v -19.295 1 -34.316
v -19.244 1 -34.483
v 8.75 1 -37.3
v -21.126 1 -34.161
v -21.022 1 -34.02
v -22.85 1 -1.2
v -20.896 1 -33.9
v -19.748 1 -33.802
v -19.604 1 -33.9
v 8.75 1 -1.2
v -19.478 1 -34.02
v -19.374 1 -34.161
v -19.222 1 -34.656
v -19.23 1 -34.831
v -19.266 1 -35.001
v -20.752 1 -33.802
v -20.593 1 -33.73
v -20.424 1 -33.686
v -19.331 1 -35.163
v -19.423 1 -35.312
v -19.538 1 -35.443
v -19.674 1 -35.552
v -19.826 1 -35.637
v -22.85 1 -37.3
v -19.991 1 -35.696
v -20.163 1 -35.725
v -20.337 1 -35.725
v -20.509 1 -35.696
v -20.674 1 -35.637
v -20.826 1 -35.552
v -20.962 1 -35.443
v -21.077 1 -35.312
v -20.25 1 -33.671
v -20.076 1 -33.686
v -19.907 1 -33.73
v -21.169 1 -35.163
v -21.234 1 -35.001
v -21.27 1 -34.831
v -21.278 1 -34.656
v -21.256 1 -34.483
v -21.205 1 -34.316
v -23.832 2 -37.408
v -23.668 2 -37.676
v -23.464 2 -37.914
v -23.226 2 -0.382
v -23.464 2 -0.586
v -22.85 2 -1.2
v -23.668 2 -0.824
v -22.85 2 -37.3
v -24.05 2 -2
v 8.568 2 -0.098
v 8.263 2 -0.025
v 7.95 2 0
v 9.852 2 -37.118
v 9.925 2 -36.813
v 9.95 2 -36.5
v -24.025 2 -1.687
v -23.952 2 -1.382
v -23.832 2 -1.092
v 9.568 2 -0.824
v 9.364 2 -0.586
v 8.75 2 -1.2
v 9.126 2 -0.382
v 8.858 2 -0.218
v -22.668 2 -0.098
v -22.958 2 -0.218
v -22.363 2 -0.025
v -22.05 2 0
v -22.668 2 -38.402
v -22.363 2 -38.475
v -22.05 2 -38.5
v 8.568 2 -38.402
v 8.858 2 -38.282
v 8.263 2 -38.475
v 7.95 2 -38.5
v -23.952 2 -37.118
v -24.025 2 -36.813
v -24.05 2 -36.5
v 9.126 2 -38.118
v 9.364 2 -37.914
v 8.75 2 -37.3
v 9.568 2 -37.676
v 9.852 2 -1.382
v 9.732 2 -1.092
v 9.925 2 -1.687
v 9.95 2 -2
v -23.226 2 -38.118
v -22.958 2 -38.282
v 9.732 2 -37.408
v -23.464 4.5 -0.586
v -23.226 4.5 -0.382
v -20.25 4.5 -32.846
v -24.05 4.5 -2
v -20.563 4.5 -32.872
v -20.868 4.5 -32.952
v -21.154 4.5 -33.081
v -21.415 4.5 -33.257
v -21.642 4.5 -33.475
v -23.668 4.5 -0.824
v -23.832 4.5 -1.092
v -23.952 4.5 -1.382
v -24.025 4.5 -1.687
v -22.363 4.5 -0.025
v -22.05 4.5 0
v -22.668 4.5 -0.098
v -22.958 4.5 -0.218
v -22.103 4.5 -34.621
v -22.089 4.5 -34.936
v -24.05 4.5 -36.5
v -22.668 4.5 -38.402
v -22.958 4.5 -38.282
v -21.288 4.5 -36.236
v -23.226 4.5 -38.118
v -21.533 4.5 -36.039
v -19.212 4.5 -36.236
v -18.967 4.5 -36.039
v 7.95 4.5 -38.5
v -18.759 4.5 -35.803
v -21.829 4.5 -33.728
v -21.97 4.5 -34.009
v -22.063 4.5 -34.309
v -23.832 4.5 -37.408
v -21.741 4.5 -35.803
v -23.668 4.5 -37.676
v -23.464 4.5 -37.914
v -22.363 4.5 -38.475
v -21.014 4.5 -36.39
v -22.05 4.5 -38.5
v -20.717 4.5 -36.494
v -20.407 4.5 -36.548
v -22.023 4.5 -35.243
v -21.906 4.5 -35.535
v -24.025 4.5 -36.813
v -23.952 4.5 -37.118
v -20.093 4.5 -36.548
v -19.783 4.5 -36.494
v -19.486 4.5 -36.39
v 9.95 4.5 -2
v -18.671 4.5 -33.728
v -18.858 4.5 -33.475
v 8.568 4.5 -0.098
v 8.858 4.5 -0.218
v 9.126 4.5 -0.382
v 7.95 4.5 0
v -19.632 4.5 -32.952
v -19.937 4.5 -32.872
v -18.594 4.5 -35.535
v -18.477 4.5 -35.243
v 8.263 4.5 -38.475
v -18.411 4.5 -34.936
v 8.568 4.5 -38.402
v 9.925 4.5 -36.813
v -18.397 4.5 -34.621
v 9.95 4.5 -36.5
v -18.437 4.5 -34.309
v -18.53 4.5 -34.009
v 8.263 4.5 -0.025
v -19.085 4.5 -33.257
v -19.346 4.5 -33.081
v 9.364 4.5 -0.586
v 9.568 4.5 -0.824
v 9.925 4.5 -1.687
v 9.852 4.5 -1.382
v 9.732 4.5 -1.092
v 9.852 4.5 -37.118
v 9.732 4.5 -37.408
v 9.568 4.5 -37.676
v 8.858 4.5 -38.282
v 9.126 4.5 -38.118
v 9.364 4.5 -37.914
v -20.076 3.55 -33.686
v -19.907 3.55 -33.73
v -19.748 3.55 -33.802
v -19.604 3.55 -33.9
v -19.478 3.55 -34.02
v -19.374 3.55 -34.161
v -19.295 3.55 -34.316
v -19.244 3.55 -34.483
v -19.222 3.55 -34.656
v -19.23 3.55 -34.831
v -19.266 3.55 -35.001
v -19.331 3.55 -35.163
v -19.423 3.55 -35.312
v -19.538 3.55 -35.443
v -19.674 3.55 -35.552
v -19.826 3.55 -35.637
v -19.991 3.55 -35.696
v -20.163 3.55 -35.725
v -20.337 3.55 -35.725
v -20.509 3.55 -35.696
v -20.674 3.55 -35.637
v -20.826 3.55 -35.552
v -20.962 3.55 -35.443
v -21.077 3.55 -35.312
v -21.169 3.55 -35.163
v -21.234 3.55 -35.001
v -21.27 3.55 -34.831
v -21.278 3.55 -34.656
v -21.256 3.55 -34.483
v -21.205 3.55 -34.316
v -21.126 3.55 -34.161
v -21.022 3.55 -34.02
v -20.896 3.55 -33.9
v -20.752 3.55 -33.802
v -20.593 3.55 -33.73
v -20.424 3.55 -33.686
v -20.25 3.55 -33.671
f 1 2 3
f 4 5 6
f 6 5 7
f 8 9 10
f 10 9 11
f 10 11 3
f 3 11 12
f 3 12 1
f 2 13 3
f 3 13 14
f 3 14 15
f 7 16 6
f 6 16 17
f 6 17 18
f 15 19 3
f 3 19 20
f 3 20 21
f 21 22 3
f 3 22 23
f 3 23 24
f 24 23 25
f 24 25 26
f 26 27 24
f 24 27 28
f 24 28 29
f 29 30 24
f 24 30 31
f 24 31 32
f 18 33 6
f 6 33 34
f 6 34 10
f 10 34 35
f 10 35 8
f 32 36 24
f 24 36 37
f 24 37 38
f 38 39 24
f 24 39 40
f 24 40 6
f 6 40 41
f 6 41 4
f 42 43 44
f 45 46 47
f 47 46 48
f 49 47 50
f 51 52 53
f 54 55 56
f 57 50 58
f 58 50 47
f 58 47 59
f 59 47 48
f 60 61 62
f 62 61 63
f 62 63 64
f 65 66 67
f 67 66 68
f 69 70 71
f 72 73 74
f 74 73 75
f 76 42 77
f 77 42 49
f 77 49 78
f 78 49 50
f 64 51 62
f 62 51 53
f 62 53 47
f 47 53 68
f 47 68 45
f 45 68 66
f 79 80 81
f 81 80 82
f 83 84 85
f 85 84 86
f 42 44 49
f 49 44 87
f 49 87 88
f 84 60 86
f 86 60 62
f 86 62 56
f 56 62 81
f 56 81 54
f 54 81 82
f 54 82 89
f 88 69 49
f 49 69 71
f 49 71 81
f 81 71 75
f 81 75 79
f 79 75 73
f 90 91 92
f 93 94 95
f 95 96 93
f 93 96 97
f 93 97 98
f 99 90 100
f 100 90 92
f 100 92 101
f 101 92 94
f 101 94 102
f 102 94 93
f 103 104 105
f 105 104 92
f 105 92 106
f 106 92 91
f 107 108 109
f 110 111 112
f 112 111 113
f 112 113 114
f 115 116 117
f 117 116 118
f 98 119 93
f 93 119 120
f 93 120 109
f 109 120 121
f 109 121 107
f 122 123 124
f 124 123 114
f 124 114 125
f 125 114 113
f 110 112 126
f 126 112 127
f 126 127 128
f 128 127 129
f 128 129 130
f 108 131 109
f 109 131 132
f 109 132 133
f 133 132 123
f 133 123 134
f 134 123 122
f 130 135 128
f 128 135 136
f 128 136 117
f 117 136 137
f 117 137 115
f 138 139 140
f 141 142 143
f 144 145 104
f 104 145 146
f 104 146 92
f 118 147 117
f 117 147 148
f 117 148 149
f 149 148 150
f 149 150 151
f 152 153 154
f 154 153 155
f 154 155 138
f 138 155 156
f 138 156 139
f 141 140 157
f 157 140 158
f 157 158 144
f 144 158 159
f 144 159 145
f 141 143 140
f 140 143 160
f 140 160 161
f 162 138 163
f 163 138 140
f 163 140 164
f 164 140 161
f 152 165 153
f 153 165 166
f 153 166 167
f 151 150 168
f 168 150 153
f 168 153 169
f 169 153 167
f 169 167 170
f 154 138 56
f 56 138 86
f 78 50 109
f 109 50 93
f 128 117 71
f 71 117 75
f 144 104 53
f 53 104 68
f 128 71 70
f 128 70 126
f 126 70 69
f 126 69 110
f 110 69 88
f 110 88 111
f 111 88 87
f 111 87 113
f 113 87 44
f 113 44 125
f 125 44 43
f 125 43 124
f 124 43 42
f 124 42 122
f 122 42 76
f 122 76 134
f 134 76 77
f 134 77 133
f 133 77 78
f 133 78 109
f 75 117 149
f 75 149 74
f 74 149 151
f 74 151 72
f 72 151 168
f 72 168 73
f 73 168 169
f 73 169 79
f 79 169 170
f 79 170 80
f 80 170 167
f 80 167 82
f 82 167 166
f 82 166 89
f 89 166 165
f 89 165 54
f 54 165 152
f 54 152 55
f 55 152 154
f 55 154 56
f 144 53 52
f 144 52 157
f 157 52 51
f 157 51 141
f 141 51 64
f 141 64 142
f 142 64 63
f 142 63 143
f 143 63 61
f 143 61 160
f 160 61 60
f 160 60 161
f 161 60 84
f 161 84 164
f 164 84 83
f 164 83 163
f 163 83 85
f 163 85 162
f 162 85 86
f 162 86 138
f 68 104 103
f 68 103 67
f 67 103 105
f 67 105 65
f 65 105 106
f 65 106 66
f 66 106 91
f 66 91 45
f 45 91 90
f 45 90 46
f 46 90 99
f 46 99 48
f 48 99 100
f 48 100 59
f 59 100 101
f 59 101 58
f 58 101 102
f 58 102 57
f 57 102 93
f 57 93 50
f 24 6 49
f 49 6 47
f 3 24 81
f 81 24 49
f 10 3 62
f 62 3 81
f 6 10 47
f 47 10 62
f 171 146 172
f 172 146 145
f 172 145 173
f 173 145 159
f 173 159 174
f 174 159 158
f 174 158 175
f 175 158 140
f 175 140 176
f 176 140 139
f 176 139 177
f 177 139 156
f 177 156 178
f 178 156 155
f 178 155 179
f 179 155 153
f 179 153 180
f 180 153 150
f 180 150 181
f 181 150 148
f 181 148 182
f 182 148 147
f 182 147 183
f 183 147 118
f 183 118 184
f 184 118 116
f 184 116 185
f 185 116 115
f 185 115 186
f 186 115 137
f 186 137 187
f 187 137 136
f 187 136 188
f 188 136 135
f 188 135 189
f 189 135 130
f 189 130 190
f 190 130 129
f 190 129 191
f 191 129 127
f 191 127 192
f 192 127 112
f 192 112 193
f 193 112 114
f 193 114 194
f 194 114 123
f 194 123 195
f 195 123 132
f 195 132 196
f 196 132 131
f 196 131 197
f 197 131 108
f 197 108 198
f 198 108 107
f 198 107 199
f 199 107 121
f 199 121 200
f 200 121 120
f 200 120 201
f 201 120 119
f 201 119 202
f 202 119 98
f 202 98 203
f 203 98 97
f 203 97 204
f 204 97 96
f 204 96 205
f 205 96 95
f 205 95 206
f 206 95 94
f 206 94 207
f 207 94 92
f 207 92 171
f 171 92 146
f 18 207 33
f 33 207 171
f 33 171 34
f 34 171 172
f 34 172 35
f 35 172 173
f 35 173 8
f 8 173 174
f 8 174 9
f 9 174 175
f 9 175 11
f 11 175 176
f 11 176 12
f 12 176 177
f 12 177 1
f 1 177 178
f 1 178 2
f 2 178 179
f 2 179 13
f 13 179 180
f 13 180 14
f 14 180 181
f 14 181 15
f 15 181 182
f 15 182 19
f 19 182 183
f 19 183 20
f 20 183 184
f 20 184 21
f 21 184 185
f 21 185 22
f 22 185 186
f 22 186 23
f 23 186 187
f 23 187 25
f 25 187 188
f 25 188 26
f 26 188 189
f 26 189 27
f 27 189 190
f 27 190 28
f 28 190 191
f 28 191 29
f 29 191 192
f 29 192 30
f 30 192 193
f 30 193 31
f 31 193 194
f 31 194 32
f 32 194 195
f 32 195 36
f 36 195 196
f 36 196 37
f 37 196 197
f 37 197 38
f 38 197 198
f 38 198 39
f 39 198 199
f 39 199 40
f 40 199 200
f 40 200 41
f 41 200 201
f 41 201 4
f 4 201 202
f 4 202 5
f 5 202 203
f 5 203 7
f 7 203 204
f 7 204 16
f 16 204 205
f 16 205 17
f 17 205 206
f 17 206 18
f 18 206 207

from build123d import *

# Parameters (mm, degrees)
SKETCH1_W                                      = 34
SKETCH1_H                                      = 2.5
EXTRUDE1_DEPTH                                 = 38.5
FILLET1_R                                      = 2
SKETCH2_W                                      = 31.6
SKETCH2_H                                      = 36.1
EXTRUDE2_DEPTH                                 = 1
CSK_FOR_1_FLAT_HEAD_MACHINE_SCREW1_D           = 2.0574
CSK_FOR_1_FLAT_HEAD_MACHINE_SCREW1_CSINK_D     = 3.7084
CSK_FOR_1_FLAT_HEAD_MACHINE_SCREW1_CSINK_ANGLE = 82


with BuildPart() as part:
    # Sketch1 → Extrude1 (new body)
    with BuildSketch(Plane.XY):
        with Locations((-7.05, 3.25)):
            Rectangle(SKETCH1_W, SKETCH1_H)
    extrude(amount=-EXTRUDE1_DEPTH)

    # Fillet1
    fillet1_edges = [part.edges().sort_by_distance(p)[0] for p in [
        (9.95, 3.25, -38.5),
        (9.95, 3.25, 0),
        (-24.05, 3.25, 0),
        (-24.05, 3.25, -38.5),
    ]]
    fillet(fillet1_edges, radius=FILLET1_R)

    # Sketch2 → Extrude2 (add)
    with BuildSketch(Plane.XZ.offset(-2)):
        with Locations((-7.05, -19.25)):
            Rectangle(SKETCH2_W, SKETCH2_H)
    extrude(amount=EXTRUDE2_DEPTH)

    # CSK for #1 Flat Head Machine Screw1 (through all)
    with Locations(Plane(origin=(-20.25, 4.5, -34.7), x_dir=(0, 0, 1), z_dir=(0, 1, 0))):
        with Locations((0, 0)):
            CounterSinkHole(CSK_FOR_1_FLAT_HEAD_MACHINE_SCREW1_D / 2, CSK_FOR_1_FLAT_HEAD_MACHINE_SCREW1_CSINK_D / 2, counter_sink_angle=CSK_FOR_1_FLAT_HEAD_MACHINE_SCREW1_CSINK_ANGLE)


solid = part.part
